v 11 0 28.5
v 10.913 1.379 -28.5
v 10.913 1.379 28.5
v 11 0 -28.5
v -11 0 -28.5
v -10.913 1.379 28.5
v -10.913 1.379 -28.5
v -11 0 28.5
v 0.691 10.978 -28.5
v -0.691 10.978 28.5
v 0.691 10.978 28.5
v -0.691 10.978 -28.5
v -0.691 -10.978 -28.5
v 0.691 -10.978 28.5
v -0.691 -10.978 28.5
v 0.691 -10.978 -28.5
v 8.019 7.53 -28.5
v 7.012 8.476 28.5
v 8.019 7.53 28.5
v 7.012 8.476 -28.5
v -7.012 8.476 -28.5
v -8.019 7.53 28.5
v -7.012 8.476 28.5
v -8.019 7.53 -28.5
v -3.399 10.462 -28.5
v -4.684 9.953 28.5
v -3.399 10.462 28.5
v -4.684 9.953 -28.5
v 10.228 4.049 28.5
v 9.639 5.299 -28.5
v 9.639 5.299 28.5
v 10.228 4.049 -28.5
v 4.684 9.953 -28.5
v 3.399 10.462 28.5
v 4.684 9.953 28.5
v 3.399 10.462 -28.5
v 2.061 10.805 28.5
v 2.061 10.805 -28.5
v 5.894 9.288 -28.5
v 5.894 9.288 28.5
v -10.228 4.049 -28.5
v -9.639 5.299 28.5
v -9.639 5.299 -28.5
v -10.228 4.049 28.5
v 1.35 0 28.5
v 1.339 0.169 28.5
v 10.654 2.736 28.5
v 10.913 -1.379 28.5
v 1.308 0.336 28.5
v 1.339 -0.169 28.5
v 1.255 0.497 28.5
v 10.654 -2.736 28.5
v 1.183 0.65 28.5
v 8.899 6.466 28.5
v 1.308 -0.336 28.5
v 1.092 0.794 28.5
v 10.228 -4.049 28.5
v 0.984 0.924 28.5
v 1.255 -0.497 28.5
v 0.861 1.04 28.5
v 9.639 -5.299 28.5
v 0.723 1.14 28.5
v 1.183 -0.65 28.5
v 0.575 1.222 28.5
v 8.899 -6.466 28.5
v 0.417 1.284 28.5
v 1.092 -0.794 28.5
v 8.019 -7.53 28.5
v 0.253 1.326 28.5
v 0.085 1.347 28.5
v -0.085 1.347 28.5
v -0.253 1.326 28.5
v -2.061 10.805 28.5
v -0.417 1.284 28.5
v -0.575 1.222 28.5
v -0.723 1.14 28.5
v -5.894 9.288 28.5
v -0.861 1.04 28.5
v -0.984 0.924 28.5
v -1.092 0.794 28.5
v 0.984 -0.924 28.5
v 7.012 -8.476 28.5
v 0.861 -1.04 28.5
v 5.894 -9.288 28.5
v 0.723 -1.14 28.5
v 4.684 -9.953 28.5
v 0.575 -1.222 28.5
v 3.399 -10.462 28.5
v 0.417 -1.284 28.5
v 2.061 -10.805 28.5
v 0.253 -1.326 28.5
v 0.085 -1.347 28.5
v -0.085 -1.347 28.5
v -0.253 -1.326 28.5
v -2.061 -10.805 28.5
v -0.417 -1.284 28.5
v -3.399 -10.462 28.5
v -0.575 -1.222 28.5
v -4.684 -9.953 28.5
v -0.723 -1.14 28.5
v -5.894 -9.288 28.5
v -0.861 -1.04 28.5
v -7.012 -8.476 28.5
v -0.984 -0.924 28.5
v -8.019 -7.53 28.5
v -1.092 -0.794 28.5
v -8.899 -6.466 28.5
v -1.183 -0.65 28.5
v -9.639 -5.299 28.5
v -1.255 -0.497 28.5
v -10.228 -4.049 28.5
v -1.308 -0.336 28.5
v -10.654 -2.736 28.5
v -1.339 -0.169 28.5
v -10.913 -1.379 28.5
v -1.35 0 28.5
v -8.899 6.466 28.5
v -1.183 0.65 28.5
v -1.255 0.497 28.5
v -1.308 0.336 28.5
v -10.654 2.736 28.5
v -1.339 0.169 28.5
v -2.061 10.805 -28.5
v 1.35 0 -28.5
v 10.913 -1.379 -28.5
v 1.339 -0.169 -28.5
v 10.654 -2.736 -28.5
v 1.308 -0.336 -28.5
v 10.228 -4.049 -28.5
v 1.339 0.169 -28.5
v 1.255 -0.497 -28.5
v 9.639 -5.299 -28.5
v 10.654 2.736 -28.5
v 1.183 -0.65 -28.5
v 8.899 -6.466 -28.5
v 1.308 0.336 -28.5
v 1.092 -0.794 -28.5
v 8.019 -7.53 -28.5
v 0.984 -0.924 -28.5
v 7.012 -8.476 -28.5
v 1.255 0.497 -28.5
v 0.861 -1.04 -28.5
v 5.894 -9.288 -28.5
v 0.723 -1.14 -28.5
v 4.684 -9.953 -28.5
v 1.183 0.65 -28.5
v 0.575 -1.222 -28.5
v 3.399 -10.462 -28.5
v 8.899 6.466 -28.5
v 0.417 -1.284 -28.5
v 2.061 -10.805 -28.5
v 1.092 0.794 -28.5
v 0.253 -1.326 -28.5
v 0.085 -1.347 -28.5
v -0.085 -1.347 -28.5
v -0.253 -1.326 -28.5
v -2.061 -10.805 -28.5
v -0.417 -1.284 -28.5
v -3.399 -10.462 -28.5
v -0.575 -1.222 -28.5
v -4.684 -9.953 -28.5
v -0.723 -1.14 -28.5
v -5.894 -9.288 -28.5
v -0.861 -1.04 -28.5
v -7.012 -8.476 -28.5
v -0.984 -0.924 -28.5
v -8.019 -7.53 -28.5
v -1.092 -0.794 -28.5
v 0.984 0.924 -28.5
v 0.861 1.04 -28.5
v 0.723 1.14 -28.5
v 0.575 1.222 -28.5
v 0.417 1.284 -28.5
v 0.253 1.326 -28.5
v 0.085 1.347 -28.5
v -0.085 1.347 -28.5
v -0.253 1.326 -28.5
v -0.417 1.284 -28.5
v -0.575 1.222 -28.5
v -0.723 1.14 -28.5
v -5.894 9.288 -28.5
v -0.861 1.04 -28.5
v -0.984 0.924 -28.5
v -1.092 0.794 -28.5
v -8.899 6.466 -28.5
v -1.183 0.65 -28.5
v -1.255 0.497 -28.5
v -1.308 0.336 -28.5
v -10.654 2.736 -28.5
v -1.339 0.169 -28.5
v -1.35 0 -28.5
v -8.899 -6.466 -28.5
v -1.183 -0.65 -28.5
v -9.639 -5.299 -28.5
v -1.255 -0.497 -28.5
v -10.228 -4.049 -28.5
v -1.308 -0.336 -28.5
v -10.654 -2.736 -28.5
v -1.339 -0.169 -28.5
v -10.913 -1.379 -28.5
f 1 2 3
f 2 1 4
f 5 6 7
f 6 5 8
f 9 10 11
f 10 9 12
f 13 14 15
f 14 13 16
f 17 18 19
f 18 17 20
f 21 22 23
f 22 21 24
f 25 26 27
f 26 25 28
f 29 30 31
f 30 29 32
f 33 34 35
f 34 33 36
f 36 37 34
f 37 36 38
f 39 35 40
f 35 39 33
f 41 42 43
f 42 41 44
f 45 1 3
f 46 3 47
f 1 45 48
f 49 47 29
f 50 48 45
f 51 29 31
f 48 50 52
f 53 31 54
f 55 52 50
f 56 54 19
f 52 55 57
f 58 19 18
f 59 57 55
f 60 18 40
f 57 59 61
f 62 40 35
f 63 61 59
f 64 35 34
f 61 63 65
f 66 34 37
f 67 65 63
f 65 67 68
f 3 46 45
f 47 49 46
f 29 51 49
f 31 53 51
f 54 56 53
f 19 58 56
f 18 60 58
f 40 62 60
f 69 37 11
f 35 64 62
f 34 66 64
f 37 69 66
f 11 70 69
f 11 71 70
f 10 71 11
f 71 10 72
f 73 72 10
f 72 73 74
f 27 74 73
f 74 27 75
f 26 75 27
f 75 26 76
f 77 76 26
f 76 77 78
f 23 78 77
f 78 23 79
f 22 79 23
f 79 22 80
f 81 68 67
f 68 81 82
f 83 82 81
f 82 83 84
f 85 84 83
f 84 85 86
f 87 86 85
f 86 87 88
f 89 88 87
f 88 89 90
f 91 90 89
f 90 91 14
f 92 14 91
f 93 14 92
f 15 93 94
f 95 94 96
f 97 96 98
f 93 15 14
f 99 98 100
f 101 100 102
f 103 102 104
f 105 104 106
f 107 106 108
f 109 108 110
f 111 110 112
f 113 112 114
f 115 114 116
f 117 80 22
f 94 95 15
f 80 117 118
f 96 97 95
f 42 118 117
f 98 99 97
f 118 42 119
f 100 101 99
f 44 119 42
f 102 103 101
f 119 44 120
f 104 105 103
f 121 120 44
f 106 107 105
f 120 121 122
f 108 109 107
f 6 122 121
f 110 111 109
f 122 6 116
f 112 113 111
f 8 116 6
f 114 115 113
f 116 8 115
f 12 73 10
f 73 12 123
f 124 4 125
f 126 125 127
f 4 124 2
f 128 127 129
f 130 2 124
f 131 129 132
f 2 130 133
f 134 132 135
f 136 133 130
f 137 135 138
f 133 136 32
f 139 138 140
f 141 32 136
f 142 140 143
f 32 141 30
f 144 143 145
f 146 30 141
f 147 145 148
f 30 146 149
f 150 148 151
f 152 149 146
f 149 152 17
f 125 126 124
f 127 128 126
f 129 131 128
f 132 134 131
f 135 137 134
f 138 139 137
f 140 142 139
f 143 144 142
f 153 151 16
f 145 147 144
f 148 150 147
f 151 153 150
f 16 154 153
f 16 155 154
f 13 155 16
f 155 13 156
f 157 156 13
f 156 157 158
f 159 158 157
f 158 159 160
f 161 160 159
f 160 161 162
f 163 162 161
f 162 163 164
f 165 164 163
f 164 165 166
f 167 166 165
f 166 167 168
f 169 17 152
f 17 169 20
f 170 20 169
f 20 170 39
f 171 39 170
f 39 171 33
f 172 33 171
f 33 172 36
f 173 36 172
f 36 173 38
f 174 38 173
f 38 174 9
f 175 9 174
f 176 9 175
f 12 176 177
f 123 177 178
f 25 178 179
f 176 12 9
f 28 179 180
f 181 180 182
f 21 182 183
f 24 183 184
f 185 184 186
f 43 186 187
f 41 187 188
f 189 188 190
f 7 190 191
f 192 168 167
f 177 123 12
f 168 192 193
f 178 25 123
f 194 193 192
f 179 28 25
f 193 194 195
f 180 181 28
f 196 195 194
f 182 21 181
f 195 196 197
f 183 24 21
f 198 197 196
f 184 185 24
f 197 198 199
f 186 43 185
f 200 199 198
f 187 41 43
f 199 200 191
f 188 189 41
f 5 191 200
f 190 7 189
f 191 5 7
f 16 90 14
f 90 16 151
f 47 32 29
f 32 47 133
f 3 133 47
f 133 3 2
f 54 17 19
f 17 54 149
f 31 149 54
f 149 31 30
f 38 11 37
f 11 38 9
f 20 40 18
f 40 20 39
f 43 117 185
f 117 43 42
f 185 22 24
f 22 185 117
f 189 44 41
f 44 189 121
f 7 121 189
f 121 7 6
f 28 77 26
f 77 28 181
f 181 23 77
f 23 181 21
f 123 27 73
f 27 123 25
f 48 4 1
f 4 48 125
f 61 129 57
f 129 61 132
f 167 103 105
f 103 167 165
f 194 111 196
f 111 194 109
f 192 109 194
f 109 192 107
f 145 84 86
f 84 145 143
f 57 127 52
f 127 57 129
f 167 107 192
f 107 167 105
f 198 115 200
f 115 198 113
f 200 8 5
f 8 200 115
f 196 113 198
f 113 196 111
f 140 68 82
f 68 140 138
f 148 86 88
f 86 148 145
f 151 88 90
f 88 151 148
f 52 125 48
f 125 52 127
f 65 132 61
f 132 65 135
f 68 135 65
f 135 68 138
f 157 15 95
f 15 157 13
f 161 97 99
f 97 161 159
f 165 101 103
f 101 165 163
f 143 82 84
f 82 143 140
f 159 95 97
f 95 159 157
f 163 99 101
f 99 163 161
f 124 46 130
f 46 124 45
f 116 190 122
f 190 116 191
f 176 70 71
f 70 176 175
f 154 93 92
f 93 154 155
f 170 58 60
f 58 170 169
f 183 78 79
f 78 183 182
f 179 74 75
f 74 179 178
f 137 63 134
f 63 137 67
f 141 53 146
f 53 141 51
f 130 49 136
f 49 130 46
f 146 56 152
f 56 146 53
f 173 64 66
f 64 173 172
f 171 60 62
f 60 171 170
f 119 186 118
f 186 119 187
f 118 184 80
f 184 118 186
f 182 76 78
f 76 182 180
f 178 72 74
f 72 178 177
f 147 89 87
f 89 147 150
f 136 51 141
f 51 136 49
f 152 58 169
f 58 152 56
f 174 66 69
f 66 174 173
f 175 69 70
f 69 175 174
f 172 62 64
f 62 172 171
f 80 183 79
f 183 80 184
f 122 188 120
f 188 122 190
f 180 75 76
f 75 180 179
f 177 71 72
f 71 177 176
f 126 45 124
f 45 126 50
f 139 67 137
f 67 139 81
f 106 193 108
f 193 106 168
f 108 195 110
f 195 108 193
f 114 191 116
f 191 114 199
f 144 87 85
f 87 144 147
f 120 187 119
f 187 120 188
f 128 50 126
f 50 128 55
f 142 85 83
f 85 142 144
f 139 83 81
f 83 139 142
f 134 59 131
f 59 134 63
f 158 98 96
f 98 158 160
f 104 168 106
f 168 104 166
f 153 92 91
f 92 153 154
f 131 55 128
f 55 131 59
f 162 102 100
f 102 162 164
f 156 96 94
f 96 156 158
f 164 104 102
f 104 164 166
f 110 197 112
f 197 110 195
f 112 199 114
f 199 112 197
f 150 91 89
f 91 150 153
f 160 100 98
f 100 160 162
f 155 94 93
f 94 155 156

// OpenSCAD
$fn = 50;


difference() {
	union() {
		translate(v = [0, 0, -28.5000000000]) {
			cylinder(h = 57, r = 11.0000000000);
		}
	}
	union() {
		translate(v = [0, 0, -100.0000000000]) {
			cylinder(h = 200, r = 1.3500000000);
		}
	}
}
